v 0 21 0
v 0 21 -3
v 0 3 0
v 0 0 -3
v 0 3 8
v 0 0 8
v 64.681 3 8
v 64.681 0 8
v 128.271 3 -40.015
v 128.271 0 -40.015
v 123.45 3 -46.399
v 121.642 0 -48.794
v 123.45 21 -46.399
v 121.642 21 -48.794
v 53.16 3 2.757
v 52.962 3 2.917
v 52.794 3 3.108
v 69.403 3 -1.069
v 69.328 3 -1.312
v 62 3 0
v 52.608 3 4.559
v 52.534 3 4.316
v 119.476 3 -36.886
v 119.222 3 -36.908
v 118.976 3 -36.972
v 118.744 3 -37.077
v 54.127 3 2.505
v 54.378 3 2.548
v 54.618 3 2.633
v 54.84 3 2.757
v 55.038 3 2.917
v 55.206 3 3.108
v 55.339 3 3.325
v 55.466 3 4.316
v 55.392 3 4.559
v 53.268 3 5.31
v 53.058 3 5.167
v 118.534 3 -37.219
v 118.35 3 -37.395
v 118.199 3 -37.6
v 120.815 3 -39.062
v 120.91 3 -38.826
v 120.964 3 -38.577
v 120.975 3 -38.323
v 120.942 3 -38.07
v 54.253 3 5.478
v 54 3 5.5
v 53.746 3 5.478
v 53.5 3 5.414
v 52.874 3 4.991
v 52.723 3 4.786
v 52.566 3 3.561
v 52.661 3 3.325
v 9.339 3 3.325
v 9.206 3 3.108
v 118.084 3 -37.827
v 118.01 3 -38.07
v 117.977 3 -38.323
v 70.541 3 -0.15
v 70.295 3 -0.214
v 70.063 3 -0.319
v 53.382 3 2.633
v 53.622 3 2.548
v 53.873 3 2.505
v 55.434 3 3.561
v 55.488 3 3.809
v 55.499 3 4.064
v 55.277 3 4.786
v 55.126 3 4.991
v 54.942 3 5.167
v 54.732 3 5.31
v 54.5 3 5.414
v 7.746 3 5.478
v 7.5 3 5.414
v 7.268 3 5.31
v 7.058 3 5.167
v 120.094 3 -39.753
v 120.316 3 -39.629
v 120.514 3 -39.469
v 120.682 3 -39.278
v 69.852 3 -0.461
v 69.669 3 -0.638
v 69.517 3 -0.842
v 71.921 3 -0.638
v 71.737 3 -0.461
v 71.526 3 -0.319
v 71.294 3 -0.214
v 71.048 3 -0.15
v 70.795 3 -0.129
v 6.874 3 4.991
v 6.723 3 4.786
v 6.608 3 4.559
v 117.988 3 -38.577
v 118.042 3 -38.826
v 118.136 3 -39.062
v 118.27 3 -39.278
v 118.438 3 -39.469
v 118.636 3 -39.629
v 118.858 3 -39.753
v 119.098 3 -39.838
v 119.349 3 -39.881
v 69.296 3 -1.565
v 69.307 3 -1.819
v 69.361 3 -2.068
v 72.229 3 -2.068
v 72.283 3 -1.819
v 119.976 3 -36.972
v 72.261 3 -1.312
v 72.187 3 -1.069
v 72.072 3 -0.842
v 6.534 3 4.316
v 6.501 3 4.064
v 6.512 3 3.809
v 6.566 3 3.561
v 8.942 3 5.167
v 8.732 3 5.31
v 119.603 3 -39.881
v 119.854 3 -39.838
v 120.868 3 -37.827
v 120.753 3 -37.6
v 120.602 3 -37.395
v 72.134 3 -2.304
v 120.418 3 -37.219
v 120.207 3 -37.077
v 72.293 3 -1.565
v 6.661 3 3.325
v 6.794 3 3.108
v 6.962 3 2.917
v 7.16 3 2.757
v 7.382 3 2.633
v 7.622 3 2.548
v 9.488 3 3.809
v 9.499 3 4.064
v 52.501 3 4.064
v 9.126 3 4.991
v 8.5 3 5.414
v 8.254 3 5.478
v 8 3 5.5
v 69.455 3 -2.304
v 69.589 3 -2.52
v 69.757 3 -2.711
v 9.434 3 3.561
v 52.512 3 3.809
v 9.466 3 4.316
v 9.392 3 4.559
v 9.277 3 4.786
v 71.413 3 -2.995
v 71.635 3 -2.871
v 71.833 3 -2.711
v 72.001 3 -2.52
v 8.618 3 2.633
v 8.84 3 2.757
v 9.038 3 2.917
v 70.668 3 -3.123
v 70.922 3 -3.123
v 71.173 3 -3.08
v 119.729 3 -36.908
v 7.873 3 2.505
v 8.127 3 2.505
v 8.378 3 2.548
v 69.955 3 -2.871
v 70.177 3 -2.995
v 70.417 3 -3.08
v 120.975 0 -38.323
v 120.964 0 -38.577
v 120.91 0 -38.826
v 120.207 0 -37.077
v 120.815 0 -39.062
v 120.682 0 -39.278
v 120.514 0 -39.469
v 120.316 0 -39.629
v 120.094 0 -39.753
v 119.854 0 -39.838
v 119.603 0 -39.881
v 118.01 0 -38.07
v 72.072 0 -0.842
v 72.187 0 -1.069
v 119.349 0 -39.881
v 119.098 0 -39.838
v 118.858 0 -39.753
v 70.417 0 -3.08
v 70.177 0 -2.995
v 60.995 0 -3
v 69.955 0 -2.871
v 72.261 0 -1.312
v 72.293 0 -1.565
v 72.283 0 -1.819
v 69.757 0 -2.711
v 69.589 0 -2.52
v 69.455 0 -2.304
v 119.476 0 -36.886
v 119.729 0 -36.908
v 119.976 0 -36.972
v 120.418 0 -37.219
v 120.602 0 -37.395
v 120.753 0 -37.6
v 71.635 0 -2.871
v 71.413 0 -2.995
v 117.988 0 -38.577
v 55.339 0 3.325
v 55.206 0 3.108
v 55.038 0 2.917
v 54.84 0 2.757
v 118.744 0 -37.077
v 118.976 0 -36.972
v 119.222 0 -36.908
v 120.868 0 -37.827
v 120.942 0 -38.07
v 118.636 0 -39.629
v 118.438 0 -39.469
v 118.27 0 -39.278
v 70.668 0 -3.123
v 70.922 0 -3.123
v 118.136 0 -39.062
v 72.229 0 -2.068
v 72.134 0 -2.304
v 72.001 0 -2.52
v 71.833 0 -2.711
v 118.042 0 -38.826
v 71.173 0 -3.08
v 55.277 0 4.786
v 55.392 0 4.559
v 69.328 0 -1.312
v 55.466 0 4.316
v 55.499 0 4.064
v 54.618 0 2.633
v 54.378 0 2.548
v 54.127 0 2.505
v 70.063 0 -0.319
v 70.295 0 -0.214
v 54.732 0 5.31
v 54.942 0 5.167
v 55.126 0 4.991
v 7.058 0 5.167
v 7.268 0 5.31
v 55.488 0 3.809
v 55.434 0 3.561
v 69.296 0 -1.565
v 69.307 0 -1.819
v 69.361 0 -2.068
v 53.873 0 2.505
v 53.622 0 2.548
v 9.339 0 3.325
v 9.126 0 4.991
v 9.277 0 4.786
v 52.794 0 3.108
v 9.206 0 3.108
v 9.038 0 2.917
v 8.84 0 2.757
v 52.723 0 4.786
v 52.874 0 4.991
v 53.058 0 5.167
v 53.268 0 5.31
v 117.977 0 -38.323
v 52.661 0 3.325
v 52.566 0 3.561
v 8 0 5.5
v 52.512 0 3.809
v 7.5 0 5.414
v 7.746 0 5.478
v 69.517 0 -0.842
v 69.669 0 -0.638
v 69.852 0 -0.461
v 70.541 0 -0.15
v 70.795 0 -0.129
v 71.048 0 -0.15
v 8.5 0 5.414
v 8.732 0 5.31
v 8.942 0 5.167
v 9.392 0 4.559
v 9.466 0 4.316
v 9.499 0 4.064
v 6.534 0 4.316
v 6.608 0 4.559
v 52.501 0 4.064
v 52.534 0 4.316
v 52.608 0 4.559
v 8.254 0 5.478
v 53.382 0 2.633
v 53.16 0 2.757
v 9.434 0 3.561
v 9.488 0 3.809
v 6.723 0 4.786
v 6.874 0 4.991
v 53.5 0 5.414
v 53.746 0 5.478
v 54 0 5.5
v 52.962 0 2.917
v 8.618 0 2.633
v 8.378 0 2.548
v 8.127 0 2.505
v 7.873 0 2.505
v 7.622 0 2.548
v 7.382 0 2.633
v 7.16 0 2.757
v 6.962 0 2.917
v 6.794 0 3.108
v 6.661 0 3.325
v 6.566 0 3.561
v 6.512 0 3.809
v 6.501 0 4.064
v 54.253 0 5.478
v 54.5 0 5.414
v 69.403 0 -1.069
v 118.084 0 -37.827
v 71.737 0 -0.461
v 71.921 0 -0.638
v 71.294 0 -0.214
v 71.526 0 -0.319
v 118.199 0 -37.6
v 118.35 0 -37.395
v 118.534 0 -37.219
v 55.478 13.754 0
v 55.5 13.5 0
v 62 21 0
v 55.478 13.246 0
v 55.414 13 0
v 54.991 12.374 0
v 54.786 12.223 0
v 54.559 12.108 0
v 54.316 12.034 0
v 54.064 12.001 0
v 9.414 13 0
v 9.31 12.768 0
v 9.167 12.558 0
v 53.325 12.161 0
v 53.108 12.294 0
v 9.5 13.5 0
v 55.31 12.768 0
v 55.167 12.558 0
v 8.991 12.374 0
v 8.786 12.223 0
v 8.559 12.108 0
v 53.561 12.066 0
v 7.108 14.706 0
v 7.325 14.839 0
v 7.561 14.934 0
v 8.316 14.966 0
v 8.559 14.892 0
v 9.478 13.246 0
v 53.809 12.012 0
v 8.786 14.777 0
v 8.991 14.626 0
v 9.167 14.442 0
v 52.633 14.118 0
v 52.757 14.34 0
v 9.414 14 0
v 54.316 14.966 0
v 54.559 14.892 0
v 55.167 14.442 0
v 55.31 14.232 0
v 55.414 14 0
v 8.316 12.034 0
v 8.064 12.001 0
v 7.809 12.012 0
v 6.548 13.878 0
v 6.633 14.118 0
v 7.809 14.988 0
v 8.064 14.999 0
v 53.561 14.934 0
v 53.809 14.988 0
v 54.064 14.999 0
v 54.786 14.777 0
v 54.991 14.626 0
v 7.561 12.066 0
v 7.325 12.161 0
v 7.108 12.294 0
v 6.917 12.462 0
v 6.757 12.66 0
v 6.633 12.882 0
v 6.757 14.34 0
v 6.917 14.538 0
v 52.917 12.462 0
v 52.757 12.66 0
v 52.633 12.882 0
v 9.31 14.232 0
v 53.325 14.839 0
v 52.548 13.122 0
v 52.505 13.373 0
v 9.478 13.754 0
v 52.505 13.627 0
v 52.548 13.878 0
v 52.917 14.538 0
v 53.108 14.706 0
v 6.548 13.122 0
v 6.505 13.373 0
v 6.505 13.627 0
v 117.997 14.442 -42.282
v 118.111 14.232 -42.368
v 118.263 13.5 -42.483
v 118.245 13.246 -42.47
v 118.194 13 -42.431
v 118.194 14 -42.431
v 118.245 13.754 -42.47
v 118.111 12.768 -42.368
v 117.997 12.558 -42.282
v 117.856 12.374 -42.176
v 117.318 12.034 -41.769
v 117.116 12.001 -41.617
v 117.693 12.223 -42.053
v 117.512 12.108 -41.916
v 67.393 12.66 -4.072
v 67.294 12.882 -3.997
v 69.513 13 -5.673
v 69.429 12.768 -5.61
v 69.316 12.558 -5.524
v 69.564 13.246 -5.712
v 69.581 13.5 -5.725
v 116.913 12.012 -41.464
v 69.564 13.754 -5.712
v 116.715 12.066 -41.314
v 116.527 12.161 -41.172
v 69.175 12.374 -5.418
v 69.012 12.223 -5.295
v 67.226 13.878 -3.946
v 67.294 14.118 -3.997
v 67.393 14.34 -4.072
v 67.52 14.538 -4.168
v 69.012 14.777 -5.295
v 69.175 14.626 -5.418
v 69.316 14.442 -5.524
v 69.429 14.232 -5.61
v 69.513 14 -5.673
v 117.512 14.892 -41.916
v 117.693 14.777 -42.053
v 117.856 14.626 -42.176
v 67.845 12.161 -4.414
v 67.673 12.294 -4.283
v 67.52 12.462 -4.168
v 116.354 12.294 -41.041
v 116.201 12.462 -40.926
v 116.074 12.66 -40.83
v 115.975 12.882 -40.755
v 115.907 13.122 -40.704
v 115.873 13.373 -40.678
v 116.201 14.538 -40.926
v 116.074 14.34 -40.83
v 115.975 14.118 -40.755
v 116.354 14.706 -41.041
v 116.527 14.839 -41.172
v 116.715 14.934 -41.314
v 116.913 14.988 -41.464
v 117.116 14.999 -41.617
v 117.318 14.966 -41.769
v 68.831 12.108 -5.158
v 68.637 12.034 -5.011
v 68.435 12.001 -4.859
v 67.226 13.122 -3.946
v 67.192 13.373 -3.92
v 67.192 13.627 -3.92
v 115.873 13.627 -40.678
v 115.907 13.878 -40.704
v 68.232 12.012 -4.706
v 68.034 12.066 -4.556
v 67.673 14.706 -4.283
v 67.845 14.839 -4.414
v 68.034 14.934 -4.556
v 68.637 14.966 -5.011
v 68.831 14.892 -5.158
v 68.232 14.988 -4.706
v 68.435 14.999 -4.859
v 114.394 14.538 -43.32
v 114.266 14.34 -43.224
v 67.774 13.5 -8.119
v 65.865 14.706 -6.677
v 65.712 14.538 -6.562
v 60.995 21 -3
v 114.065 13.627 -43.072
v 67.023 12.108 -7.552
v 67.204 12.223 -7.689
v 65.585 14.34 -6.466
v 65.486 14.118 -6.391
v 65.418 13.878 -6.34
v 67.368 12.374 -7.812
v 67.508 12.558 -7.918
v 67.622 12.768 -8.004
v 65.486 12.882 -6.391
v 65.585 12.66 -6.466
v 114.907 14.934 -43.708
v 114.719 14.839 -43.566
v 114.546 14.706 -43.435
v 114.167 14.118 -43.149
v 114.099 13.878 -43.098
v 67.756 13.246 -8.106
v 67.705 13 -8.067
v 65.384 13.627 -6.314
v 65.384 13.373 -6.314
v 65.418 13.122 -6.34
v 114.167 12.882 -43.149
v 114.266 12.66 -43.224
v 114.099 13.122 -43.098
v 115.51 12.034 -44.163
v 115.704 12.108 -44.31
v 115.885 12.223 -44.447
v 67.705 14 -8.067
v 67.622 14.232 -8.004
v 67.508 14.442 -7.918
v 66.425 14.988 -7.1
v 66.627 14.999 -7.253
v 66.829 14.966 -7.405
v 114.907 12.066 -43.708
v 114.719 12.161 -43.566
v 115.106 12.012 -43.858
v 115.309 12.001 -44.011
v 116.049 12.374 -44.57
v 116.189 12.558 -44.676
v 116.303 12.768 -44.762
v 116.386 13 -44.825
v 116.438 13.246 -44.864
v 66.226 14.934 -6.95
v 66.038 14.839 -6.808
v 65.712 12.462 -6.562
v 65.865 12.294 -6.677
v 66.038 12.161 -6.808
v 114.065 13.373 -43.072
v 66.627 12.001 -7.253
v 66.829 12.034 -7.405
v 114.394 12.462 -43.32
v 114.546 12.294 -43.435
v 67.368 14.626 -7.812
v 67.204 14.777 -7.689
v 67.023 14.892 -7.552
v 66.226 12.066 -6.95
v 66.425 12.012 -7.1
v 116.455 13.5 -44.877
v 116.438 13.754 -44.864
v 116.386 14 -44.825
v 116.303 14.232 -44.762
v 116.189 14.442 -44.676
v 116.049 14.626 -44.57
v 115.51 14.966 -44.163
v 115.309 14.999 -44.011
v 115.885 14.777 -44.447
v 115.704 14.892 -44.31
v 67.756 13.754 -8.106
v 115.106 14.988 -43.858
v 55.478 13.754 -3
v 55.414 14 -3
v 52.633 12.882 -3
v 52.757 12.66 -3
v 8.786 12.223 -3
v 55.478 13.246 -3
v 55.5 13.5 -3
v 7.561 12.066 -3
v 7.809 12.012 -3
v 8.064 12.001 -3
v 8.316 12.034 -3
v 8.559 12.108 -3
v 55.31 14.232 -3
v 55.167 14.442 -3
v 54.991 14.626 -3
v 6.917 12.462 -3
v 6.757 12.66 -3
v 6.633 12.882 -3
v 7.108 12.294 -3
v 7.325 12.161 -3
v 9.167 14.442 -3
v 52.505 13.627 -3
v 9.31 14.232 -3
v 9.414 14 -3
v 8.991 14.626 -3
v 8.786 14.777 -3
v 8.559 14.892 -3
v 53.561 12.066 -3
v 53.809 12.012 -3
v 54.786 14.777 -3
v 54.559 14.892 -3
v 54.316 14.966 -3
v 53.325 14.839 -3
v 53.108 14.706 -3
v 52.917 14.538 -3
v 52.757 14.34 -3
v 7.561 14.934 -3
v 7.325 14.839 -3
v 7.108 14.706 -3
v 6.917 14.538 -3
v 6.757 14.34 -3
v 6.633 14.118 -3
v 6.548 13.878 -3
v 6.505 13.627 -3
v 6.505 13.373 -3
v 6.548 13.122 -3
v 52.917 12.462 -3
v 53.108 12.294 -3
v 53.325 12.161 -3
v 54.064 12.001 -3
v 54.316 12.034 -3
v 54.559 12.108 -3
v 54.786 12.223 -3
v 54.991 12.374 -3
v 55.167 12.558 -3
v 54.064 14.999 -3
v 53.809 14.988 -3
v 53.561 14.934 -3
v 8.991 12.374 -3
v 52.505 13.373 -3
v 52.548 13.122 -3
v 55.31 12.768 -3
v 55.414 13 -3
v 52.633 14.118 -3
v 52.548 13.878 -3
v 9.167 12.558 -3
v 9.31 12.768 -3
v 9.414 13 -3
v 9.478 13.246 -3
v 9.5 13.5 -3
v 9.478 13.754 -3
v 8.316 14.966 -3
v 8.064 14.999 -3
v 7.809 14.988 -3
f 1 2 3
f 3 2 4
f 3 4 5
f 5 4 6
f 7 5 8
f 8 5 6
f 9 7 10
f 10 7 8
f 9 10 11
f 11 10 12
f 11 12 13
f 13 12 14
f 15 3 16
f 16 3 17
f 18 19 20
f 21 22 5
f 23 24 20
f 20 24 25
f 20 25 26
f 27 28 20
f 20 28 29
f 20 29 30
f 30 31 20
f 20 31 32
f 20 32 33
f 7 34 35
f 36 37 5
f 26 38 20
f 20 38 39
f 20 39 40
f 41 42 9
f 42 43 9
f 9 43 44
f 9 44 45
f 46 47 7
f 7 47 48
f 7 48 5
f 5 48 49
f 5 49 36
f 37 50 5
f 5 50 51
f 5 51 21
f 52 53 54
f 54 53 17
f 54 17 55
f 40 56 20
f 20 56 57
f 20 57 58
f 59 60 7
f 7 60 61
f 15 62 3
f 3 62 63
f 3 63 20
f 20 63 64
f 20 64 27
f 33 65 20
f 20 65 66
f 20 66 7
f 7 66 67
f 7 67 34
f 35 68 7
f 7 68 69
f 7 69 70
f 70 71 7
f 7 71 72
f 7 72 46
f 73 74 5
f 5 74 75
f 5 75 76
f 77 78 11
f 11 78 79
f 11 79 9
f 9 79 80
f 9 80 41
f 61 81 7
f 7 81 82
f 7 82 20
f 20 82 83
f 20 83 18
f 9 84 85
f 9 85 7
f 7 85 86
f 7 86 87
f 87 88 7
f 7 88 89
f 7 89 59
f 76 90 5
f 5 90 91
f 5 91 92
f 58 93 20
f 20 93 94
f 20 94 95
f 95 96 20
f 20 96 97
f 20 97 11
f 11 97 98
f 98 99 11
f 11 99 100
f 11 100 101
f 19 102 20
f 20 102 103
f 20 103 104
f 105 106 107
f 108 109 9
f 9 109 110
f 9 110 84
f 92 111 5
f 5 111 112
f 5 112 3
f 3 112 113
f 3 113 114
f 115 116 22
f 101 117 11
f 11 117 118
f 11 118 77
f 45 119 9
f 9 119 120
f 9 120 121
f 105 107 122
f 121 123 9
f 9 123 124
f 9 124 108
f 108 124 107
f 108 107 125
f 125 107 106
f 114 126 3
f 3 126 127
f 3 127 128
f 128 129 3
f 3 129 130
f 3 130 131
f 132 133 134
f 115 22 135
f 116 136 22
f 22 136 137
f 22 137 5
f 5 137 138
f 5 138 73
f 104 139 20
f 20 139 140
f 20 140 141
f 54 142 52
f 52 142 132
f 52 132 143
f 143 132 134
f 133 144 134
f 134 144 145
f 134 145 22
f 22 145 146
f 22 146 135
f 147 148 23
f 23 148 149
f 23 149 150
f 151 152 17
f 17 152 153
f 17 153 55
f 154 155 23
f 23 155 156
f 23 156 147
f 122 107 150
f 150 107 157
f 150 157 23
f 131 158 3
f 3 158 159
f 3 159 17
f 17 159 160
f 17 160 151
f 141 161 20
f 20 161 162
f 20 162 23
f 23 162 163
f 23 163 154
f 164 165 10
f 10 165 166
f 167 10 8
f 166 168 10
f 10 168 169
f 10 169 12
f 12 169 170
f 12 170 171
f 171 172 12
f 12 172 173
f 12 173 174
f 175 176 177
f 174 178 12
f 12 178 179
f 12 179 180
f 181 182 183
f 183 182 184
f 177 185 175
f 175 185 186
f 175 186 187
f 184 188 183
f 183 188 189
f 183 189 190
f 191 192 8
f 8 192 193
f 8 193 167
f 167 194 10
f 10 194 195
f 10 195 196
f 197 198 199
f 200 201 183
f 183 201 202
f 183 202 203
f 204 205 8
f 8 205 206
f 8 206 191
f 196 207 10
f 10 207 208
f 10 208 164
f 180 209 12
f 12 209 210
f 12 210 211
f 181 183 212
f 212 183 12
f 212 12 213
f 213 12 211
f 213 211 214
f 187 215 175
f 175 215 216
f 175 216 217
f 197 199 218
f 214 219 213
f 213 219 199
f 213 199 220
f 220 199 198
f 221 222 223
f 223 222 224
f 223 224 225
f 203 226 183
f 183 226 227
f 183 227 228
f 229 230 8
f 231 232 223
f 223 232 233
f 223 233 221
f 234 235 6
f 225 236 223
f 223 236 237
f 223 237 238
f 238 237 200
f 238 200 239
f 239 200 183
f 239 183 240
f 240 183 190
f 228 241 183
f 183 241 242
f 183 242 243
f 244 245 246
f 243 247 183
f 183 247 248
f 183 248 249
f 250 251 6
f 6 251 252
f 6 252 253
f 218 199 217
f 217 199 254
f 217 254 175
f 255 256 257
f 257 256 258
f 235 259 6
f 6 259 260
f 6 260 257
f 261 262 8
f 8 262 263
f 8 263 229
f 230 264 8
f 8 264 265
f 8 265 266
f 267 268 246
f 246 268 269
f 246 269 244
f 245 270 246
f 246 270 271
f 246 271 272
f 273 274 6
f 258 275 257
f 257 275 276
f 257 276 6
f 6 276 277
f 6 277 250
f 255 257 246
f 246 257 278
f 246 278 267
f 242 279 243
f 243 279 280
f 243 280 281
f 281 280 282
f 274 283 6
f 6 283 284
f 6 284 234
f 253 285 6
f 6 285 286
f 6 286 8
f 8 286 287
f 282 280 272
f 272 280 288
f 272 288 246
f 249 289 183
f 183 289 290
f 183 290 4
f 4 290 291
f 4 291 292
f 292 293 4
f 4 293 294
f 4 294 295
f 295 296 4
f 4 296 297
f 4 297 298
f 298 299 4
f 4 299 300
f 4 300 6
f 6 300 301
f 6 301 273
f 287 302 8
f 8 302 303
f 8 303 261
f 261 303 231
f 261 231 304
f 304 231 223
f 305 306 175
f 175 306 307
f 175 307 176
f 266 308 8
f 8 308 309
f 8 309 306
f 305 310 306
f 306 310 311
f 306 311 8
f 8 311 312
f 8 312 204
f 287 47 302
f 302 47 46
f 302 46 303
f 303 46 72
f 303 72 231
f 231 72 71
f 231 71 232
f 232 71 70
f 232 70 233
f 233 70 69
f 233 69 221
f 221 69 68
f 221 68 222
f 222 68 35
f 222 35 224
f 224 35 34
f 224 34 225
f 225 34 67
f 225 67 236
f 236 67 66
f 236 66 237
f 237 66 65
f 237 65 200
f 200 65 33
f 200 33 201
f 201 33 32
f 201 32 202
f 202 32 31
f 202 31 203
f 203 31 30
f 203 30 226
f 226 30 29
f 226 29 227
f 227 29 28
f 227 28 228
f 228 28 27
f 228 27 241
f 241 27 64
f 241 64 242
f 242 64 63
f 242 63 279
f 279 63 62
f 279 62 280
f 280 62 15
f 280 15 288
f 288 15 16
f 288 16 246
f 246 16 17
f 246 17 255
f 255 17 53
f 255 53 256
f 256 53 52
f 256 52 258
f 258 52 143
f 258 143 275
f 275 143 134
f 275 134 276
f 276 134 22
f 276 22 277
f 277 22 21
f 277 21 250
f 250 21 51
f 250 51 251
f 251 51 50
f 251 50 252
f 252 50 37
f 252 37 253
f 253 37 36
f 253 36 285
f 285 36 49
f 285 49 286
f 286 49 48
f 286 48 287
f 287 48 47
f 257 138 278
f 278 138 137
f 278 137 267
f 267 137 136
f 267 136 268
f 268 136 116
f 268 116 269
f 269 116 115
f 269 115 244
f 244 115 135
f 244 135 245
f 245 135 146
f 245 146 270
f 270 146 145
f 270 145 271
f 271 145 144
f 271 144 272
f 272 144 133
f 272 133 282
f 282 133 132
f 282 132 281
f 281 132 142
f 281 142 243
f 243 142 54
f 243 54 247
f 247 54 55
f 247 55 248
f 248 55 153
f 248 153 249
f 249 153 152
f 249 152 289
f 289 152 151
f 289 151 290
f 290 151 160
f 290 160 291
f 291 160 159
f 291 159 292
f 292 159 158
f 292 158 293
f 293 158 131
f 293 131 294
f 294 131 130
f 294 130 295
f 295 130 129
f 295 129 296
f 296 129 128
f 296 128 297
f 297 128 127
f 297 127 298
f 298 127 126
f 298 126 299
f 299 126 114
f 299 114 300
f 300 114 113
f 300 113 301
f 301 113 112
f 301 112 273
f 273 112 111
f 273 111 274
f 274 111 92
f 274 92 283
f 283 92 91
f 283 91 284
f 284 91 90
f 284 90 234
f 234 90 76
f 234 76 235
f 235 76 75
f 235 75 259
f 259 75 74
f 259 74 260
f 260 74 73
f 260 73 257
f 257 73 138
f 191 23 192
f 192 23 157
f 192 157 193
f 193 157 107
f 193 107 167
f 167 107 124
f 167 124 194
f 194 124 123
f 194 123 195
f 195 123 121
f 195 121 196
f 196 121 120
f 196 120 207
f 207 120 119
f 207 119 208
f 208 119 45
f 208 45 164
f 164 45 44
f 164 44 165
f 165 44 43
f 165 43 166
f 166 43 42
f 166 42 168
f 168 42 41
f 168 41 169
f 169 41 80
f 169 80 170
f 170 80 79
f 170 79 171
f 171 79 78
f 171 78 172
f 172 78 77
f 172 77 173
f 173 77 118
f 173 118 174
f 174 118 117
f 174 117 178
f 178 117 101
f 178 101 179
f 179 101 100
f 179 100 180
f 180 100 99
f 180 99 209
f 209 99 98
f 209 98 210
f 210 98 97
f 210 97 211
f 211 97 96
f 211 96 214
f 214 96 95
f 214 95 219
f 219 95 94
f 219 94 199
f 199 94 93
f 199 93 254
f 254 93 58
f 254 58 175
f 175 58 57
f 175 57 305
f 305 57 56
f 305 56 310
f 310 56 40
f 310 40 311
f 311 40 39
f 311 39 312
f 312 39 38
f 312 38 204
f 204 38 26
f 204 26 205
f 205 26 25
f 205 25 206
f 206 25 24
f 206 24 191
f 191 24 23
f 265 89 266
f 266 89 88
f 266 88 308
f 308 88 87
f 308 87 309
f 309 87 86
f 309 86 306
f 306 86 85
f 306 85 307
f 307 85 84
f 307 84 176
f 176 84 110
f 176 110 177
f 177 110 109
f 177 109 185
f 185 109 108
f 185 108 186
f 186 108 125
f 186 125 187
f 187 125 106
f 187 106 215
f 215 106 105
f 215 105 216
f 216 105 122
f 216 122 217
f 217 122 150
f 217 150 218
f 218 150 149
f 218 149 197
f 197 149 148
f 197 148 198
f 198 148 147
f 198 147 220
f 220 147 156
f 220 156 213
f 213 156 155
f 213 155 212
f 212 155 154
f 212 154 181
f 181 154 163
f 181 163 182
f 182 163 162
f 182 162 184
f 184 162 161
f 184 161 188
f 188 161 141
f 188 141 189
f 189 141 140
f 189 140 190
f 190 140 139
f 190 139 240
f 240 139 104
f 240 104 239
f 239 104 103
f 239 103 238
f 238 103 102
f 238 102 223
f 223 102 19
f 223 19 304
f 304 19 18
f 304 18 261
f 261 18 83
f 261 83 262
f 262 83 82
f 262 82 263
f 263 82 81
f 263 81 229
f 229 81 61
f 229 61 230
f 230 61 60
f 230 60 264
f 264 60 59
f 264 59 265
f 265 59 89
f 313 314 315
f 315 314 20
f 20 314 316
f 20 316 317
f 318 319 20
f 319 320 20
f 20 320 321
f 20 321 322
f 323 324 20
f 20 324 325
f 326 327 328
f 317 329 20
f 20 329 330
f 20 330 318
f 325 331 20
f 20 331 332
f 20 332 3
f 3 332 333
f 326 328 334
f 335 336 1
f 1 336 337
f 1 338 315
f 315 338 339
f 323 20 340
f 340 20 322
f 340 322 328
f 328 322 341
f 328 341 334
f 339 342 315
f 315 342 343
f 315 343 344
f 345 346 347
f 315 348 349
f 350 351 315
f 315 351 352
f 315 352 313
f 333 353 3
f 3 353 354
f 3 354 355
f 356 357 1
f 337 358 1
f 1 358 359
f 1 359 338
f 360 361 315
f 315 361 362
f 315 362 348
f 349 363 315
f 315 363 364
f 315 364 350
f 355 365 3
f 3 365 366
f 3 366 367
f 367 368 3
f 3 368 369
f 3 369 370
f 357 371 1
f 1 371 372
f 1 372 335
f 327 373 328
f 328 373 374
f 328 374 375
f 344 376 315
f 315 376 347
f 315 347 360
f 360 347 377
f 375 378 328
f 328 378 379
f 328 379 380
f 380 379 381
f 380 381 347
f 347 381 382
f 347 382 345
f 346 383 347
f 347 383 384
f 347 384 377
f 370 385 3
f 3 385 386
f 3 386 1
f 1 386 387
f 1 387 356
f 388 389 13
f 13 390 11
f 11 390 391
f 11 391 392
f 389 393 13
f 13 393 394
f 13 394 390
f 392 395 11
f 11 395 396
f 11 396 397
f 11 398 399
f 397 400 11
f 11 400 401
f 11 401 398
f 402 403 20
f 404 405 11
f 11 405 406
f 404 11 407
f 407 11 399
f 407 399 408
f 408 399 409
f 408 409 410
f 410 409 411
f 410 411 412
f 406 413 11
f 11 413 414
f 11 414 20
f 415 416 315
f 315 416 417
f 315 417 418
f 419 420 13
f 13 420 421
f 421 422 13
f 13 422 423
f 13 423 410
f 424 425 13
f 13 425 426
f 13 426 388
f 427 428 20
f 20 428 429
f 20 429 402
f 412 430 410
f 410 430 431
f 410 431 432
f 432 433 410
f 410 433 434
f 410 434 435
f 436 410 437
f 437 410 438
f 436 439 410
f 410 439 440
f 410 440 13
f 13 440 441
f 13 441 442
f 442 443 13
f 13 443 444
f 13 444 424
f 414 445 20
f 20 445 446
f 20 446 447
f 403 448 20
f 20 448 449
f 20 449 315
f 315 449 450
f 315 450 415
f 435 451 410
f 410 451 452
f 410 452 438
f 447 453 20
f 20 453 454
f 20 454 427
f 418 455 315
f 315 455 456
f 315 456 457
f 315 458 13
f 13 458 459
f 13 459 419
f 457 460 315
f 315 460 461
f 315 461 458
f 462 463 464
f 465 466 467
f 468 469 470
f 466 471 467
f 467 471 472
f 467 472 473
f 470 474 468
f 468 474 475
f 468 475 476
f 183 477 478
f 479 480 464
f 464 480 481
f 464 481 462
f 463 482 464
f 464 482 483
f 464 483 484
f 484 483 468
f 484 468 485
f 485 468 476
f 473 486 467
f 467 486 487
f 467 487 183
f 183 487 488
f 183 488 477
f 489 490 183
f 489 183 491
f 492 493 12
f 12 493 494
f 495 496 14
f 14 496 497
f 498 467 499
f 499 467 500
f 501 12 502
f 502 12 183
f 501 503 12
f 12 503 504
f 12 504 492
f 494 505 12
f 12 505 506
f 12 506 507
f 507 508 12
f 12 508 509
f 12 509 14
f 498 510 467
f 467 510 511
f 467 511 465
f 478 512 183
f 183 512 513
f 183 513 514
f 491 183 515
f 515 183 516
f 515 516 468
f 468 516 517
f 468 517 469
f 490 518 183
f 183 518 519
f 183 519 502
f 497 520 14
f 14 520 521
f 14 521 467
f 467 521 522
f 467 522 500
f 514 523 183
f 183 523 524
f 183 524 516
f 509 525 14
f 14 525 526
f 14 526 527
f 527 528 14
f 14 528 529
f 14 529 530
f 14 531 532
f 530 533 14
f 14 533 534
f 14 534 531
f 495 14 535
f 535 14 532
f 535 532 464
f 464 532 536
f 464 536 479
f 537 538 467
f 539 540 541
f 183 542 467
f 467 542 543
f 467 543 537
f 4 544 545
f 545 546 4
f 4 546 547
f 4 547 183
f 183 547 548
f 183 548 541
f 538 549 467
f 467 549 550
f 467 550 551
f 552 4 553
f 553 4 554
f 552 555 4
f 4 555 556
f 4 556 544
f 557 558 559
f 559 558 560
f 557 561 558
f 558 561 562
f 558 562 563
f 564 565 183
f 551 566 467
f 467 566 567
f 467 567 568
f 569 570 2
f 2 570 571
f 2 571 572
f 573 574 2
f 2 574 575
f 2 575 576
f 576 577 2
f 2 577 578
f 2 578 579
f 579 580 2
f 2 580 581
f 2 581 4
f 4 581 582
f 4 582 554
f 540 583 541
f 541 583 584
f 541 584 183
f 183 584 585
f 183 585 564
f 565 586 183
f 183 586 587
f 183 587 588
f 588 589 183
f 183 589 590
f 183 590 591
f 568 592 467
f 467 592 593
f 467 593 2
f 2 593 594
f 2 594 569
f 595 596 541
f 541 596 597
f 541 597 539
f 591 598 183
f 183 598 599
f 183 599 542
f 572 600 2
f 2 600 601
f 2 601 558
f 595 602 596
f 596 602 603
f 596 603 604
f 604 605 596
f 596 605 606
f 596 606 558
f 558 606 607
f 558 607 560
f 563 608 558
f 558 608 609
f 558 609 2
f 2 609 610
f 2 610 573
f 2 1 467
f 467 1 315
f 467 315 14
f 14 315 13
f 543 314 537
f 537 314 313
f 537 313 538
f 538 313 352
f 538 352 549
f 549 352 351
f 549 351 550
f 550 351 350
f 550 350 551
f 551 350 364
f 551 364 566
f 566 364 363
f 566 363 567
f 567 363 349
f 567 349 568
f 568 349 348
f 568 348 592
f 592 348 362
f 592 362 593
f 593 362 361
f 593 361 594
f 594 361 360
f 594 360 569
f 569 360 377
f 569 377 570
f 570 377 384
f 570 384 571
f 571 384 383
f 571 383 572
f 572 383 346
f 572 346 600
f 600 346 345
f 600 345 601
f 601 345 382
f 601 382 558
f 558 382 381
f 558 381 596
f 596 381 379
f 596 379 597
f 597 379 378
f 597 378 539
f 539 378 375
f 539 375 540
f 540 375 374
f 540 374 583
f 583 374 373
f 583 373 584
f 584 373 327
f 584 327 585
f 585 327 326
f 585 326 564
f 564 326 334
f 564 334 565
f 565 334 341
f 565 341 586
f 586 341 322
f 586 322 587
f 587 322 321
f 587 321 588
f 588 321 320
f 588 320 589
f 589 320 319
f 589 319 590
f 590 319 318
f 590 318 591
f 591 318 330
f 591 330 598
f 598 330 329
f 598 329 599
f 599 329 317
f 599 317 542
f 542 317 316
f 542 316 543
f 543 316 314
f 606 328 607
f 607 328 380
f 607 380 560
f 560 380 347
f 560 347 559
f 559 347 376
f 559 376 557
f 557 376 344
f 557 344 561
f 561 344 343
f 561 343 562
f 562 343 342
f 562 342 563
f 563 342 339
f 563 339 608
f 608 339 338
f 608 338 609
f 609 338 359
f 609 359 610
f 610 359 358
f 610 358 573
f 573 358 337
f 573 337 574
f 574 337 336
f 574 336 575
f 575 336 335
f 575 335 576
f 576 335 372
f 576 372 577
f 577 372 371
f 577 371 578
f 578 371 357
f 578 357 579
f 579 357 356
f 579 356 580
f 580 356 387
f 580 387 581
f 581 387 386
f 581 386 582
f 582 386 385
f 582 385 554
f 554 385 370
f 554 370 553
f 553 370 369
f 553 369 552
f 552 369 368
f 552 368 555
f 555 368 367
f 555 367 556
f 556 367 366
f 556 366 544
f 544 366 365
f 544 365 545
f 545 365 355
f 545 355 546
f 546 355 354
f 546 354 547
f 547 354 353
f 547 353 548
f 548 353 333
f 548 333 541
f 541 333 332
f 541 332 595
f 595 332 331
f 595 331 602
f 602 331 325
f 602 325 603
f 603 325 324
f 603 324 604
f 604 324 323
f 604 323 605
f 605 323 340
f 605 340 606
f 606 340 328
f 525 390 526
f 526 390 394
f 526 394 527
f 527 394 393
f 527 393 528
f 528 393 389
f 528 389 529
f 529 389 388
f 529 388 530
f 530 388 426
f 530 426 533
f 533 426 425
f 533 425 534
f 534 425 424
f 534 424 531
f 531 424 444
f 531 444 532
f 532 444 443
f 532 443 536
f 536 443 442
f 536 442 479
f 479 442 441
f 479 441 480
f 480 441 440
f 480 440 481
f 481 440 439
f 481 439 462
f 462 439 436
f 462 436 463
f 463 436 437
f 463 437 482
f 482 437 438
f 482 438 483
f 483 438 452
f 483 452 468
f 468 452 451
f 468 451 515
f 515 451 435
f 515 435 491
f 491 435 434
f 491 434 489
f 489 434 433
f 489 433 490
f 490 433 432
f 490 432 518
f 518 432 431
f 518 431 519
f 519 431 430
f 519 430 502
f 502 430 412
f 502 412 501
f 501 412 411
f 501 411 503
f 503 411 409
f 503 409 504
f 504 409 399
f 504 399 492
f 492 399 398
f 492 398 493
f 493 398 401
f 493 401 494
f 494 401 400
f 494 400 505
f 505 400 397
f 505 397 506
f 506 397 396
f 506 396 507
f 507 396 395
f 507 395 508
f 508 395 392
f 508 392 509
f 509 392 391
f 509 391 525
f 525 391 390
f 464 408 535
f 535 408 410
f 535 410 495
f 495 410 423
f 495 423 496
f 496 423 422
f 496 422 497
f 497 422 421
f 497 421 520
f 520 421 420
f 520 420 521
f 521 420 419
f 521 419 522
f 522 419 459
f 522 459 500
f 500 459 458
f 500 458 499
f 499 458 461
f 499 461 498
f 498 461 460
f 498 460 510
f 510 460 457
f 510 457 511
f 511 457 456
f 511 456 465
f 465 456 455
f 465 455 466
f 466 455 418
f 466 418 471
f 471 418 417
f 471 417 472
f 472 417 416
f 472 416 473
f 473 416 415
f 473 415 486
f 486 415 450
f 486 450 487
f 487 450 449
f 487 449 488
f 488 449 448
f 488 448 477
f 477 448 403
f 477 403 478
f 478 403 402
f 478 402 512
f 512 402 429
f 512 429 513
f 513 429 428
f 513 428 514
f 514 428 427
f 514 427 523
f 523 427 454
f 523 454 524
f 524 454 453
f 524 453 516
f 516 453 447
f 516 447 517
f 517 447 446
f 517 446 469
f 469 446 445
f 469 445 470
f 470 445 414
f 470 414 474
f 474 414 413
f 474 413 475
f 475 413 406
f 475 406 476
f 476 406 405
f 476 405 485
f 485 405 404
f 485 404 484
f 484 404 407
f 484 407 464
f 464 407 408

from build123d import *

# Parameters (mm, degrees)
SALIENTE_EXTRUIR1_DEPTH      = 3
CROQUIS2_R                   = 1.5
CORTAR_EXTRUIR1_DEPTH        = 3
CROQUIS3_R                   = 1.5
CORTAR_EXTRUIR2_DEPTH        = 3
SALIENTE_EXTRUIR2_DEPTH      = 18
SALIENTE_EXTRUIR2_DEPTH_BACK = 3
CROQUIS5_R                   = 1.5
CORTAR_EXTRUIR3_DEPTH        = 3
CROQUIS6_R                   = 1.5
CORTAR_EXTRUIR4_DEPTH        = 3


with BuildPart() as part:
    # Croquis1 → Saliente-Extruir1 (new body)
    with BuildSketch(Plane(origin=(0, 0, 0), x_dir=(1, 0, 0), z_dir=(0, 1, 0))):
        Polygon((0, 0), (62, 0), (123.449927666, 46.399422301), (128.270646866, 40.015014231), (64.681080335, -8), (0, -8), align=None)
    extrude(amount=SALIENTE_EXTRUIR1_DEPTH)

    # Croquis2 → Cortar-Extruir1 (cut)
    with BuildSketch(Plane(origin=(0, 3, 0), x_dir=(1, 0, 0), z_dir=(0, 1, 0))):
        with Locations(Location((8, -4, 0), (0, 0, 270))):
            Circle(CROQUIS2_R)
        with Locations(Location((54, -4, 0), (0, 0, 270))):
            Circle(CROQUIS2_R)
    extrude(amount=-CORTAR_EXTRUIR1_DEPTH, mode=Mode.SUBTRACT)

    # Croquis3 → Cortar-Extruir2 (cut)
    with BuildSketch(Plane(origin=(0, 3, 0), x_dir=(1, 0, 0), z_dir=(0, 1, 0))):
        with Locations(Location((70.794767669, 1.628515165, 0), (0, 0, 270))):
            Circle(CROQUIS3_R)
        with Locations(Location((119.475879197, 38.386499066, 0), (0, 0, 270))):
            Circle(CROQUIS3_R)
    extrude(amount=-CORTAR_EXTRUIR2_DEPTH, mode=Mode.SUBTRACT)

    # Croquis4 → Saliente-Extruir2 (add, two sides: drawn at the far end of the back side and taken through both)
    with BuildSketch(Plane(origin=(0, 3, 0), x_dir=(1, 0, 0), z_dir=(0, 1, 0)).offset(-SALIENTE_EXTRUIR2_DEPTH_BACK)):
        Polygon((0, 0), (0, 3), (60.994594874, 3), (121.642157966, 48.793575327), (123.449927666, 46.399422301), (62, 0), align=None)
    extrude(amount=SALIENTE_EXTRUIR2_DEPTH + SALIENTE_EXTRUIR2_DEPTH_BACK)

    # Croquis5 → Cortar-Extruir3 (cut)
    with BuildSketch(Plane.XY):
        with Locations((8, 13.5)):
            Circle(CROQUIS5_R)
        with Locations((54, 13.5)):
            Circle(CROQUIS5_R)
    extrude(amount=-CORTAR_EXTRUIR3_DEPTH, mode=Mode.SUBTRACT)

    # Croquis6 → Cortar-Extruir4 (cut)
    with BuildSketch(Plane(origin=(22.513104431, 0, 29.815643605), x_dir=(0.798051008651339, 0, -0.6025899000071112), z_dir=(0.6025899000071112, 0, 0.798051008651339))):
        with Locations((57.479162536, 13.5)):
            Circle(CROQUIS6_R)
        with Locations((118.479162536, 13.5)):
            Circle(CROQUIS6_R)
    extrude(amount=-CORTAR_EXTRUIR4_DEPTH, mode=Mode.SUBTRACT)


solid = part.part
